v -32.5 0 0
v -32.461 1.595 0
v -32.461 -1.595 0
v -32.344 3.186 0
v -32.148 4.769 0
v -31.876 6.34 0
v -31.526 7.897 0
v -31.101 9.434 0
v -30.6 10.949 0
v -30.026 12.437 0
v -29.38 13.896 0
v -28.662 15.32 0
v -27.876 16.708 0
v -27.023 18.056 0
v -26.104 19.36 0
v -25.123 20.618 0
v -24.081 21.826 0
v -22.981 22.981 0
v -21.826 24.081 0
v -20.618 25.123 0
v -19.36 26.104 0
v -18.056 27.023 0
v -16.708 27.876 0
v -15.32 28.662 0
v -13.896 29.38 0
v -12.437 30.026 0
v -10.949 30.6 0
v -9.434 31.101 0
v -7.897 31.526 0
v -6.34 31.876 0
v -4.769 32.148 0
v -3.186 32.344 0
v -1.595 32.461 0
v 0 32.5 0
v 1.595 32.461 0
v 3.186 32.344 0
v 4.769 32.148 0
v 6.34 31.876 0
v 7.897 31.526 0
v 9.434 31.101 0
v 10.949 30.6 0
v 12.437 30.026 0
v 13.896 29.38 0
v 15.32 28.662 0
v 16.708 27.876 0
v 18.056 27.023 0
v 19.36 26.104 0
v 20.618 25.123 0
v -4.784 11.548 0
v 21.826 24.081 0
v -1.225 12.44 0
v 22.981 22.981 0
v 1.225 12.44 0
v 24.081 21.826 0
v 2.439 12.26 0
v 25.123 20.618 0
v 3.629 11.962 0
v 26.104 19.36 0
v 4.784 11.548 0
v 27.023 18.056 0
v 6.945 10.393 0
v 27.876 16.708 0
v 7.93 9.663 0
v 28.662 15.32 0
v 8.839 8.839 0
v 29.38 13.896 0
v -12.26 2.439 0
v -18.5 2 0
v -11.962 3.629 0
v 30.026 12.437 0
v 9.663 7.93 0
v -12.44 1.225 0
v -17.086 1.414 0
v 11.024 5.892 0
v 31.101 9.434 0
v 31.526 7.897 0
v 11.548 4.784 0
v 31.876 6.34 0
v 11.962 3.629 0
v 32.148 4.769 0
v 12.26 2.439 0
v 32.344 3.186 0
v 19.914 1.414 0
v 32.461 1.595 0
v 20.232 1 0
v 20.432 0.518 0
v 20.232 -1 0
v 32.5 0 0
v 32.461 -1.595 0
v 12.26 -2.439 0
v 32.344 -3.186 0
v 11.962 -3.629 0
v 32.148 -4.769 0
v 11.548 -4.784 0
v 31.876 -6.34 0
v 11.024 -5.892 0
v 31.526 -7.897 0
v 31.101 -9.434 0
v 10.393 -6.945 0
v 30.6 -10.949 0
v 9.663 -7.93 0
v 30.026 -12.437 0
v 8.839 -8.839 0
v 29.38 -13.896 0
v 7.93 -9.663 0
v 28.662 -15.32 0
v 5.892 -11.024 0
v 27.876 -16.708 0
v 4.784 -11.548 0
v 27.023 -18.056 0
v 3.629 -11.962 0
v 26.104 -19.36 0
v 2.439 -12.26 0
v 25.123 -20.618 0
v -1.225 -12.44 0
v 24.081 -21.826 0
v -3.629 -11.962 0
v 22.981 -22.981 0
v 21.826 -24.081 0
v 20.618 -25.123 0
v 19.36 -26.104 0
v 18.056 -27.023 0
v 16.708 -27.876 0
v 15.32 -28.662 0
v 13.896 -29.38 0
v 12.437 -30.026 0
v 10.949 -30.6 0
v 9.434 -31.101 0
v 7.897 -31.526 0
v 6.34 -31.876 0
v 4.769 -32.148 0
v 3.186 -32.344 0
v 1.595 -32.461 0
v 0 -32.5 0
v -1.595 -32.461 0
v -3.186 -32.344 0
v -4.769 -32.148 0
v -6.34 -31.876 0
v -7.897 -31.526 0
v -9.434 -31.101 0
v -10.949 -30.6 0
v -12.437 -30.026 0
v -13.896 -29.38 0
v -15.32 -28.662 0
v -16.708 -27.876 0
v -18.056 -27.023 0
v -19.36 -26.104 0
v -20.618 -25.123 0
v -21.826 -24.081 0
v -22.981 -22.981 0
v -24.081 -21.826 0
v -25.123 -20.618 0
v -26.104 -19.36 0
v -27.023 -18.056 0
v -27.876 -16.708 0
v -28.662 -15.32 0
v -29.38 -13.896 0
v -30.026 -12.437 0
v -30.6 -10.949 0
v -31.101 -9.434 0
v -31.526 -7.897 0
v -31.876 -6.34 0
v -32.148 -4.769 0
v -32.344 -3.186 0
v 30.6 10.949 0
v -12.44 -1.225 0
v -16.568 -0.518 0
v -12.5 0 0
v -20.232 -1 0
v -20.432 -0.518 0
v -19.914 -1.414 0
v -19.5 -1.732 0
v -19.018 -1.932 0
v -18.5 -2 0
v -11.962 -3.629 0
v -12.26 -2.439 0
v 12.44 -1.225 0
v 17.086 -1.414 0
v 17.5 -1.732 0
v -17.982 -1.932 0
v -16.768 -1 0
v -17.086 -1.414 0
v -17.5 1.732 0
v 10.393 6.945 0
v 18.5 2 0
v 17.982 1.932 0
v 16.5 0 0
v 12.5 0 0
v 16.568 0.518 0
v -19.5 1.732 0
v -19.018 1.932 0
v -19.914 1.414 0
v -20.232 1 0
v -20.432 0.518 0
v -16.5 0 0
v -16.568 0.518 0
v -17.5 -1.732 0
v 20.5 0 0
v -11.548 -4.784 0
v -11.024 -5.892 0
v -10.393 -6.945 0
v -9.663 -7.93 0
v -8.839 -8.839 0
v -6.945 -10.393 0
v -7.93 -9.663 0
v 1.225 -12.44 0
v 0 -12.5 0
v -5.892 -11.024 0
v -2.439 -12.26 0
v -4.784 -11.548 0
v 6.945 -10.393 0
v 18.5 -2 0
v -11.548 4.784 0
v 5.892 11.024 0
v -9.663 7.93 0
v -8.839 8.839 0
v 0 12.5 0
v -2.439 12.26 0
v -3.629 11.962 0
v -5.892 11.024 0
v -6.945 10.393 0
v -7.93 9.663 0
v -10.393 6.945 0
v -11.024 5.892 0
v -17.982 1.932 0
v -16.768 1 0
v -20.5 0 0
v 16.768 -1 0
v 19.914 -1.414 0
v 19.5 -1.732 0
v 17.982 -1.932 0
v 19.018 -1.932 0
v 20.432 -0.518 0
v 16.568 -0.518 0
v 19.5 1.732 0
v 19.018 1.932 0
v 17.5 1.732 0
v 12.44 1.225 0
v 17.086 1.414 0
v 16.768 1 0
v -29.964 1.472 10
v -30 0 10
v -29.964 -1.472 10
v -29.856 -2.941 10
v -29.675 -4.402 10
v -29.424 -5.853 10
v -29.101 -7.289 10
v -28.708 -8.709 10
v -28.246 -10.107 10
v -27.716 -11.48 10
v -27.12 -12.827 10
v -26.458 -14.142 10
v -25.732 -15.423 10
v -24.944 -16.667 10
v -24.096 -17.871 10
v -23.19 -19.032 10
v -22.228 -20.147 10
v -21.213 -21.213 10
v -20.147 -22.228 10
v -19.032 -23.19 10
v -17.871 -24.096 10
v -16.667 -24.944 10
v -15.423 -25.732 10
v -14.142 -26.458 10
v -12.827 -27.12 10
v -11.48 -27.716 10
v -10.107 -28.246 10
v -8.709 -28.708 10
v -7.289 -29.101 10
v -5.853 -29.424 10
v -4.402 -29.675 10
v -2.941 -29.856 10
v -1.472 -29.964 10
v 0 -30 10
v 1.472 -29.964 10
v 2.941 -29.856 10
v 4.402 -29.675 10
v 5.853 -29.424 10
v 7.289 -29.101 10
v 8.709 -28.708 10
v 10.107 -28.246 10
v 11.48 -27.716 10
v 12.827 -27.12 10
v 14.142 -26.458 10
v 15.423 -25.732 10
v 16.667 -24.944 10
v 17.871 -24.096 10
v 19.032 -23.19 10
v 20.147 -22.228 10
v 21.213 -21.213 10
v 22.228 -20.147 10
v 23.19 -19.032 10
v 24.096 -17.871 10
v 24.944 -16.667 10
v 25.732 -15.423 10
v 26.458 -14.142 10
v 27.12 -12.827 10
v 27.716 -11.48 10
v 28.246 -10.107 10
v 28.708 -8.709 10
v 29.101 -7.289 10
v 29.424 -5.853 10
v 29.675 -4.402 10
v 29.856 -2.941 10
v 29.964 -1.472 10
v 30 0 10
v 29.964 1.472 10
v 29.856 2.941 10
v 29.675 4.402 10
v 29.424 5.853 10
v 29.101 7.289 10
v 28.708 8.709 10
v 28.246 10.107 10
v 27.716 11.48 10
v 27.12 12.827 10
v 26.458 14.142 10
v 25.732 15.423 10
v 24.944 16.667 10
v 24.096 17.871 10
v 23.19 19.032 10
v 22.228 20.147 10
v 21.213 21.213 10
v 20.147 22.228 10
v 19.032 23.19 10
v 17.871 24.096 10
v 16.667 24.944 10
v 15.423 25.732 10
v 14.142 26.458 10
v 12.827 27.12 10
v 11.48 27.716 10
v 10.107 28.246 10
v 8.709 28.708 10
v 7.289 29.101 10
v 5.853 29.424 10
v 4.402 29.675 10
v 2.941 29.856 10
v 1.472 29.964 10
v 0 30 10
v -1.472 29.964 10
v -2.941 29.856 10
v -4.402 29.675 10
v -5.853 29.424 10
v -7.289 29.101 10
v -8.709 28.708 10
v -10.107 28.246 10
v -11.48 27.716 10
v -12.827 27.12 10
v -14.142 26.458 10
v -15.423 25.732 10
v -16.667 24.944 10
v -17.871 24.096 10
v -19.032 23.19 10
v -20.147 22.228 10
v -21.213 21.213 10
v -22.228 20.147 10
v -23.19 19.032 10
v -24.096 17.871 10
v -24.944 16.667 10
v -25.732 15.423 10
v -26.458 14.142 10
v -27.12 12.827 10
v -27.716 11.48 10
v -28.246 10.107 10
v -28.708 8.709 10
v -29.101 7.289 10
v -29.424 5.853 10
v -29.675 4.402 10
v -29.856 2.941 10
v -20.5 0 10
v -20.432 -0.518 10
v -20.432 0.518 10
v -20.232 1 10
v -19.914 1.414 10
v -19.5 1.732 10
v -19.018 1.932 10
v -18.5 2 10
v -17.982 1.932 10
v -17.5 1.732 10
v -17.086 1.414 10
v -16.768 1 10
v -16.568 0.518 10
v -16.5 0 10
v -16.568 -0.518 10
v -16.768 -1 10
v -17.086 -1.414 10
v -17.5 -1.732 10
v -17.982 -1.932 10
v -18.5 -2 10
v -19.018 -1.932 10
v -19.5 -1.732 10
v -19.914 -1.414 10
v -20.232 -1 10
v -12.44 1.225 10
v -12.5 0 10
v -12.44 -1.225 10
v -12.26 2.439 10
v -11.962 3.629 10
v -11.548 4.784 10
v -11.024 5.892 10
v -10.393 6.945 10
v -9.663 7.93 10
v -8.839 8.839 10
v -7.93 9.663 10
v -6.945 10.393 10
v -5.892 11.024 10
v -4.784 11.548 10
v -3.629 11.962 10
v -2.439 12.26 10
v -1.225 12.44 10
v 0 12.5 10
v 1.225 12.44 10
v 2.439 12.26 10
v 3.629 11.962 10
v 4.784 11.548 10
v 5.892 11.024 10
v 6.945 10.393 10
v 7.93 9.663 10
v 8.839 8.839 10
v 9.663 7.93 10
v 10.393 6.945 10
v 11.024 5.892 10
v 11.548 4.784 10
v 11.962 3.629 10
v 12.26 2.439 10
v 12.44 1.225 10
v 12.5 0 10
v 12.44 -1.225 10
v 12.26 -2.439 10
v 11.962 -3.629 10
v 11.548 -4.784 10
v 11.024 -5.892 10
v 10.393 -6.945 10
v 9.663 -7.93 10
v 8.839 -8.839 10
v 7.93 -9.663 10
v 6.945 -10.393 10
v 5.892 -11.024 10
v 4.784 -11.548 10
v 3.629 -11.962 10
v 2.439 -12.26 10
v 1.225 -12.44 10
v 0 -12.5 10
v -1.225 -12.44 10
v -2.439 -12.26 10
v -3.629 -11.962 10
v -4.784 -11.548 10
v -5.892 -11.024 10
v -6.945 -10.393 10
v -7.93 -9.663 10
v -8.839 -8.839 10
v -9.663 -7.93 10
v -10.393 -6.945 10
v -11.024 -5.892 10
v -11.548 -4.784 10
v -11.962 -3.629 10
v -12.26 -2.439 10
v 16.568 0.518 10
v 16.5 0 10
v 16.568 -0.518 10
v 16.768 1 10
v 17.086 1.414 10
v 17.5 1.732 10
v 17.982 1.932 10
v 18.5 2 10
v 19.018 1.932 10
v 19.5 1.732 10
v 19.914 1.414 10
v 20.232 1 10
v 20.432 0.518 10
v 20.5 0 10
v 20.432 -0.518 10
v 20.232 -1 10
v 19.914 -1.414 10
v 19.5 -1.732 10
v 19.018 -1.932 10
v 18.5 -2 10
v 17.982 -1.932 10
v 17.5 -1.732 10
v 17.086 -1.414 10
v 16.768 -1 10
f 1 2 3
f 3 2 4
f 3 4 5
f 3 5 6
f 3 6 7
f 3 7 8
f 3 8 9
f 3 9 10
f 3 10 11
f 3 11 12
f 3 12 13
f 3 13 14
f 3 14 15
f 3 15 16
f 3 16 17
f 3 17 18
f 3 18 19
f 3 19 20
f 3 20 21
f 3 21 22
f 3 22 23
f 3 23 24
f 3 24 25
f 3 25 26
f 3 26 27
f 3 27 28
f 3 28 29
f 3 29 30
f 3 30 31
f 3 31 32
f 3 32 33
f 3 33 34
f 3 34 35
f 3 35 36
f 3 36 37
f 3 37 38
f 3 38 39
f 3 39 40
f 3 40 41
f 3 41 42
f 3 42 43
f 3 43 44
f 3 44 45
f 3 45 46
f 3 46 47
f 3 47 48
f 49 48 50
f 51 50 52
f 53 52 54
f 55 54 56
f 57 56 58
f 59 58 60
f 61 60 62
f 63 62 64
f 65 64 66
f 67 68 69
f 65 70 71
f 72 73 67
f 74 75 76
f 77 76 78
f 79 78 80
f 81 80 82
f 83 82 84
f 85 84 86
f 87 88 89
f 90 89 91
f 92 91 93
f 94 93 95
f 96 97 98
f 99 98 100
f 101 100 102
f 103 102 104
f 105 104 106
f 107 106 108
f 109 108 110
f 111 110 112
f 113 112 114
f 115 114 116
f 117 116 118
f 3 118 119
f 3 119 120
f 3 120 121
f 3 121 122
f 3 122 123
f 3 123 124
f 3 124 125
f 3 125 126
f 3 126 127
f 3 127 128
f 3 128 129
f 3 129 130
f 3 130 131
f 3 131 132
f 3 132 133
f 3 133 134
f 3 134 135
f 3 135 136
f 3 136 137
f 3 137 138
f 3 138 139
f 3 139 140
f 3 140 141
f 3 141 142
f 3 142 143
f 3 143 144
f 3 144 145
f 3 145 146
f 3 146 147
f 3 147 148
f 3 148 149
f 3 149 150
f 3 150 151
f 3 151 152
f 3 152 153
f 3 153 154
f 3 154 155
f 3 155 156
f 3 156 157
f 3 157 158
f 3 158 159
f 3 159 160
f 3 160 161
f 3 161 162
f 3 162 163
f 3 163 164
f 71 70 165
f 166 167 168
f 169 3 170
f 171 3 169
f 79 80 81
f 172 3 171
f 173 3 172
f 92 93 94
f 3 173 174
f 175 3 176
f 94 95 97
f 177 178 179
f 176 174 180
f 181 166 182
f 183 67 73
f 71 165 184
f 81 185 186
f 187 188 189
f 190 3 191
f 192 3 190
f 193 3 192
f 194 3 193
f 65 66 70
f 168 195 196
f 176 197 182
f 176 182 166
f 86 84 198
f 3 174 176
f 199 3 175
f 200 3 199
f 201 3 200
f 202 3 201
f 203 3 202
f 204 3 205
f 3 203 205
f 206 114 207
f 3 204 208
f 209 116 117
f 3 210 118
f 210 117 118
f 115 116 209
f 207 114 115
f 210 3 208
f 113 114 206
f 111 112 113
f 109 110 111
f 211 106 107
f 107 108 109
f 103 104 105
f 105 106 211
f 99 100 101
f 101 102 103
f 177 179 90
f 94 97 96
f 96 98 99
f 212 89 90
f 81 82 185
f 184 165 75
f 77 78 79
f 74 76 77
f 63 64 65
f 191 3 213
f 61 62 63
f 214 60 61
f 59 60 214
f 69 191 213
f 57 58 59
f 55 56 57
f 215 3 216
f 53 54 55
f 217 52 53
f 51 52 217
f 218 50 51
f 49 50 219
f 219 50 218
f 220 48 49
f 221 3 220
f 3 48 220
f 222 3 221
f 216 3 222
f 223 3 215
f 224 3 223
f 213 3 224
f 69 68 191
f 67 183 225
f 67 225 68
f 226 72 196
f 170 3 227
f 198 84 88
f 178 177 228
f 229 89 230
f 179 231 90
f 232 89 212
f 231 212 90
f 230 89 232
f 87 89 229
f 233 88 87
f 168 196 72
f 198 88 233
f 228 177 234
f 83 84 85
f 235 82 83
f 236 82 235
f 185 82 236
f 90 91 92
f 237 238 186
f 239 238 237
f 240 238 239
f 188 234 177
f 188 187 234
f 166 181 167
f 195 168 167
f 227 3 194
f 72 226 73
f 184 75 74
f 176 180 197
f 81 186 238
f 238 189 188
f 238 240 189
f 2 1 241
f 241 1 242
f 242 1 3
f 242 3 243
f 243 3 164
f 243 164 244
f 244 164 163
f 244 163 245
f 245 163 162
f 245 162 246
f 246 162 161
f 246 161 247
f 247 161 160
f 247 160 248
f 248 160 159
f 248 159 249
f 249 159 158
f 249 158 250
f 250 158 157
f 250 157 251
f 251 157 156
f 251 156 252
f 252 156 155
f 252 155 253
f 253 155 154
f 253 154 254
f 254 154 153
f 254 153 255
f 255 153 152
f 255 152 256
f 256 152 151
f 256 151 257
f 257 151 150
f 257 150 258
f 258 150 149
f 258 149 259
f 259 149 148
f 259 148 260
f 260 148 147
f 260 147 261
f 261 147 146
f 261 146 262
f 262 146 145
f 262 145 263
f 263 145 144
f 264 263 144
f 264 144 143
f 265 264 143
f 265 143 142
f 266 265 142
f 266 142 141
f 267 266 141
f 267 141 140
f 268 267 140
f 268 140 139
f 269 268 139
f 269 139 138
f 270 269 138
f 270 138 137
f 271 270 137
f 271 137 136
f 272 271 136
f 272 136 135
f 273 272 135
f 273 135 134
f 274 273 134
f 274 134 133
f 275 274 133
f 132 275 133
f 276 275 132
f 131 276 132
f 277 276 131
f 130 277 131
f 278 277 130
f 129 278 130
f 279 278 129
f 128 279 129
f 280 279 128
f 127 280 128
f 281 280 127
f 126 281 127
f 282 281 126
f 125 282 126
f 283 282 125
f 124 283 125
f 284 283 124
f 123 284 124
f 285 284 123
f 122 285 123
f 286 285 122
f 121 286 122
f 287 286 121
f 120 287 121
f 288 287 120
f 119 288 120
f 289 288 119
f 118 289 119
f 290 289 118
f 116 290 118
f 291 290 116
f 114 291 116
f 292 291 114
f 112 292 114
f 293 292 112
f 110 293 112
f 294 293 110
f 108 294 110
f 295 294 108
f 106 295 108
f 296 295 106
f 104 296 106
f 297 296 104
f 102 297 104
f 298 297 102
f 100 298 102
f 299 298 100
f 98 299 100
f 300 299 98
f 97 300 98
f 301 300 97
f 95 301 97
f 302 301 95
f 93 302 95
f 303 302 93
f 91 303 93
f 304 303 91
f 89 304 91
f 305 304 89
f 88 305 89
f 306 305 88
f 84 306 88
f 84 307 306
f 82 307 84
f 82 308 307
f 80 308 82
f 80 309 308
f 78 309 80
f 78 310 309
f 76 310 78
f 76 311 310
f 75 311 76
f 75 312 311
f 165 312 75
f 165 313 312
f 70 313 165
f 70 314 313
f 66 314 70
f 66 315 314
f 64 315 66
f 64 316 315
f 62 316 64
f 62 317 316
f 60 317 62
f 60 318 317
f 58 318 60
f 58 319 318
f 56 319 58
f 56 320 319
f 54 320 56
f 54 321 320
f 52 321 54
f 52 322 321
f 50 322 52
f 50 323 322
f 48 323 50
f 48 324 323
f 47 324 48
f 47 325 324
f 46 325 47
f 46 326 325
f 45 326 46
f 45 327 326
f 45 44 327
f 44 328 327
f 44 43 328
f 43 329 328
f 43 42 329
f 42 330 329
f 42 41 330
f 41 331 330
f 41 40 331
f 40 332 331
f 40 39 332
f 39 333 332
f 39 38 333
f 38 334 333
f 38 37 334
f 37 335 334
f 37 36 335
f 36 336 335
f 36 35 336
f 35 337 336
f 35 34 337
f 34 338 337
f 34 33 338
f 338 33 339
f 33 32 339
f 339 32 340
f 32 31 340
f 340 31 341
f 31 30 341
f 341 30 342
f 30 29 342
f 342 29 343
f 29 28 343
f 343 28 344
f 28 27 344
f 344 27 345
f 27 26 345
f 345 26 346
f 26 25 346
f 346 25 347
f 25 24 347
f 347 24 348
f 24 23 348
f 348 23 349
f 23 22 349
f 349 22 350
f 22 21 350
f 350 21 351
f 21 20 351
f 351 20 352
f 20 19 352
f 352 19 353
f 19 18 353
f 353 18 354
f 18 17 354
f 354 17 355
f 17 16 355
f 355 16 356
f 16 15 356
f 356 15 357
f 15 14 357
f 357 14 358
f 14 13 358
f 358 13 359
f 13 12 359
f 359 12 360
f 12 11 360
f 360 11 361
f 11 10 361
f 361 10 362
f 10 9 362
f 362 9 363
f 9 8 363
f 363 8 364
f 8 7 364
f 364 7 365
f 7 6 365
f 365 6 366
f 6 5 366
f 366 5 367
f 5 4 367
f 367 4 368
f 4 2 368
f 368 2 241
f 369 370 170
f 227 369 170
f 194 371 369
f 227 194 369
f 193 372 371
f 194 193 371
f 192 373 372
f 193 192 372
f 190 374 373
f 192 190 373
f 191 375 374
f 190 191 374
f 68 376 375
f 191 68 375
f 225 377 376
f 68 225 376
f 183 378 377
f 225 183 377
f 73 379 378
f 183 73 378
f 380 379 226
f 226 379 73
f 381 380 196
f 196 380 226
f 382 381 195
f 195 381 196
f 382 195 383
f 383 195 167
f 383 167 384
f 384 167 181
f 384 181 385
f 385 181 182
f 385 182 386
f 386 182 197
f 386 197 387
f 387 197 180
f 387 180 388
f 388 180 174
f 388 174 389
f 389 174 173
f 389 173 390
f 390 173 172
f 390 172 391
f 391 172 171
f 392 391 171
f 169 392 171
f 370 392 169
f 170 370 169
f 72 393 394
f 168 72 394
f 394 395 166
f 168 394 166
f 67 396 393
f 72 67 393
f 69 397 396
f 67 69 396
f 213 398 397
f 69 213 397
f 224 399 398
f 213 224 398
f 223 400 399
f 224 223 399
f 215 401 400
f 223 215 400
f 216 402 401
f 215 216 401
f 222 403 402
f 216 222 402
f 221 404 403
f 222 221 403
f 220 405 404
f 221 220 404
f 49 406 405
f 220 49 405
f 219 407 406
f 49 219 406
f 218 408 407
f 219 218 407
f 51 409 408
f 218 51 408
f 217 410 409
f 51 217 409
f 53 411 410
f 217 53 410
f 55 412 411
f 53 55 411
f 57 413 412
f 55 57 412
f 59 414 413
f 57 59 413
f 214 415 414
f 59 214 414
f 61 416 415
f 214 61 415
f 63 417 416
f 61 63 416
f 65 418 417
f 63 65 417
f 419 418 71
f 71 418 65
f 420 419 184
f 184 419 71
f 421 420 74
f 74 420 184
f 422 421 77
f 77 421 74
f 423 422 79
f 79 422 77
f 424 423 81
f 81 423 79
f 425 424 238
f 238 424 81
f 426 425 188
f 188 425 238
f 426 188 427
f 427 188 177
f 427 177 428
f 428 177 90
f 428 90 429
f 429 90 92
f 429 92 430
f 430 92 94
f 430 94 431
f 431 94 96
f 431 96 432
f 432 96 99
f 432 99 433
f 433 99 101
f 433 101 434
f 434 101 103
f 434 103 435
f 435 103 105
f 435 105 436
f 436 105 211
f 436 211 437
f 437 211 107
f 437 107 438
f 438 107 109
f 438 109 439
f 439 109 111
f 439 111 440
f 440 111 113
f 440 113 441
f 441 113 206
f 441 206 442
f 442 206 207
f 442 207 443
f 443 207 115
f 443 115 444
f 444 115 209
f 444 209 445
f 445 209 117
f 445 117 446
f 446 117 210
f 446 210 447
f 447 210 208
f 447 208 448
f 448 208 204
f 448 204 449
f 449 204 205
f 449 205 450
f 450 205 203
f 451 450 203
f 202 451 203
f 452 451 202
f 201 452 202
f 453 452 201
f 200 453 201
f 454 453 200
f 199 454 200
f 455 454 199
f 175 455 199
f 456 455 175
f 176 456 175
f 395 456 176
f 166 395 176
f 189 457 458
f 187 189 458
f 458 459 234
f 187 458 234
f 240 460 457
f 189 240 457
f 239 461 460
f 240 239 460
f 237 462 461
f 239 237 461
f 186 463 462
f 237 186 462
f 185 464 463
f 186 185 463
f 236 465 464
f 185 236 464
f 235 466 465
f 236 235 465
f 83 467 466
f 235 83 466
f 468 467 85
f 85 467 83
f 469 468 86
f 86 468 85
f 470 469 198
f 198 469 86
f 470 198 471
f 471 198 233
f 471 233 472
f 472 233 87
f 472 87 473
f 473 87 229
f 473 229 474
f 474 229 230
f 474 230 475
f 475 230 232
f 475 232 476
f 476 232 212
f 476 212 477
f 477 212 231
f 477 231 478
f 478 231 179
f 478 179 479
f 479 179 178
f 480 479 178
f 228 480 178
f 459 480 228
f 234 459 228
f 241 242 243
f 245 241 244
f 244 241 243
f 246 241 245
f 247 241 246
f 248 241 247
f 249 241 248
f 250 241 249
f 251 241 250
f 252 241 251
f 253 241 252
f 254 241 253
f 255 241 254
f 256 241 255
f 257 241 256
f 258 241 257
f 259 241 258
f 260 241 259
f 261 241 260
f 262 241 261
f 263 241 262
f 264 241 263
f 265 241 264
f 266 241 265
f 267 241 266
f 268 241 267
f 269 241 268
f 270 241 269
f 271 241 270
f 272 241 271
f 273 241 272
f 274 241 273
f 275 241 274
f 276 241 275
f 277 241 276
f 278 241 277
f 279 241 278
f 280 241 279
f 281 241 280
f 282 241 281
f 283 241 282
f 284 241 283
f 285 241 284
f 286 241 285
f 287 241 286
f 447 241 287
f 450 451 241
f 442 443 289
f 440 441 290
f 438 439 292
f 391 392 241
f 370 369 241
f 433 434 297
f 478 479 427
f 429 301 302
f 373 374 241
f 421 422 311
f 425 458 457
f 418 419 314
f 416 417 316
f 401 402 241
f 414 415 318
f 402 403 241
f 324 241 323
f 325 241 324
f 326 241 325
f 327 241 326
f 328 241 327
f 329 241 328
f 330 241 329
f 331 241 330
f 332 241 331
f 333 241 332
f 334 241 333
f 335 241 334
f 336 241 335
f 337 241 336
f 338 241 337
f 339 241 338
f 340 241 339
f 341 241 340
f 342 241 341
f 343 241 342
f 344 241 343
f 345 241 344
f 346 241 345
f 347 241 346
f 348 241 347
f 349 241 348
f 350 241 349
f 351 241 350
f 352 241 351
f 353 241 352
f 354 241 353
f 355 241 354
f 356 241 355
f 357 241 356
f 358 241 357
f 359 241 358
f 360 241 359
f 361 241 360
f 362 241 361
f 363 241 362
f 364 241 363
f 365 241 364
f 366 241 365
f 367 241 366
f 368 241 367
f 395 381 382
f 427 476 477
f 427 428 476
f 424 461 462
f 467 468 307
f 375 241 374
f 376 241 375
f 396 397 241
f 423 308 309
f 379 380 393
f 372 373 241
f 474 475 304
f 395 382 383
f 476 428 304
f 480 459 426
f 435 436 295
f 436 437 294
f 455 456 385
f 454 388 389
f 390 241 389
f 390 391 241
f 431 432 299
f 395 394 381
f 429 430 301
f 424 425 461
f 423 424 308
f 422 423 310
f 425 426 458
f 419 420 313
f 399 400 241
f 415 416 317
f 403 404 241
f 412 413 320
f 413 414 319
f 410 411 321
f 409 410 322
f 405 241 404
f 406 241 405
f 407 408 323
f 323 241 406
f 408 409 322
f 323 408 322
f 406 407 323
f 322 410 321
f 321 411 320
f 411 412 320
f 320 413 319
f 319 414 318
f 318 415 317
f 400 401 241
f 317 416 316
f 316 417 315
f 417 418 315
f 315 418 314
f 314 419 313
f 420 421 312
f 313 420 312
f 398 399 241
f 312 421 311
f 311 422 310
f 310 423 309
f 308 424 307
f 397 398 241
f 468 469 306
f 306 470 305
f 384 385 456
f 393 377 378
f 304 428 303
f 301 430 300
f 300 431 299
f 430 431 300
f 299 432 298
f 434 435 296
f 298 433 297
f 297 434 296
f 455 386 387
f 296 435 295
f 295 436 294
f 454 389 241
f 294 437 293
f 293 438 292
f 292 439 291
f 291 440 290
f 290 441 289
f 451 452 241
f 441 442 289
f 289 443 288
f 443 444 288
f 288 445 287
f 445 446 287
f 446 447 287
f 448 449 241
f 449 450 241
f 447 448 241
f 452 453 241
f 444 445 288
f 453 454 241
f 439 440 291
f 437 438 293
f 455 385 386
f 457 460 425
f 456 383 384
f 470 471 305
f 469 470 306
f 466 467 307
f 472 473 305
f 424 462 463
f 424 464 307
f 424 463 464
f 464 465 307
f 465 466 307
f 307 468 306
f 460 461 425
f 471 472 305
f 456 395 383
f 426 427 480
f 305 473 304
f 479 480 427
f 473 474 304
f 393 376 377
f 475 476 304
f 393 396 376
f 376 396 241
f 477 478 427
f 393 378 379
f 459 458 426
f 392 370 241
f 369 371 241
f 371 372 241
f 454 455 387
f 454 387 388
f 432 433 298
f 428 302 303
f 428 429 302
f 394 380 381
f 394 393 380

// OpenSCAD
borde= 1.4;
rpequeno= 30;
rgrande= 32.5;
h1= 10;
rgujero= 12.5;

difference() {
cylinder (r1=rgrande, r2=rpequeno, h=h1, $fn=128);
    cylinder (r=rgujero, h=20, $fn=64);
    translate ([ 37/2,0,0])   cylinder(r=2, h=20, $fn=24);
    translate ([-37/2,0,0])   cylinder(r=2, h=20, $fn=24 );
}
